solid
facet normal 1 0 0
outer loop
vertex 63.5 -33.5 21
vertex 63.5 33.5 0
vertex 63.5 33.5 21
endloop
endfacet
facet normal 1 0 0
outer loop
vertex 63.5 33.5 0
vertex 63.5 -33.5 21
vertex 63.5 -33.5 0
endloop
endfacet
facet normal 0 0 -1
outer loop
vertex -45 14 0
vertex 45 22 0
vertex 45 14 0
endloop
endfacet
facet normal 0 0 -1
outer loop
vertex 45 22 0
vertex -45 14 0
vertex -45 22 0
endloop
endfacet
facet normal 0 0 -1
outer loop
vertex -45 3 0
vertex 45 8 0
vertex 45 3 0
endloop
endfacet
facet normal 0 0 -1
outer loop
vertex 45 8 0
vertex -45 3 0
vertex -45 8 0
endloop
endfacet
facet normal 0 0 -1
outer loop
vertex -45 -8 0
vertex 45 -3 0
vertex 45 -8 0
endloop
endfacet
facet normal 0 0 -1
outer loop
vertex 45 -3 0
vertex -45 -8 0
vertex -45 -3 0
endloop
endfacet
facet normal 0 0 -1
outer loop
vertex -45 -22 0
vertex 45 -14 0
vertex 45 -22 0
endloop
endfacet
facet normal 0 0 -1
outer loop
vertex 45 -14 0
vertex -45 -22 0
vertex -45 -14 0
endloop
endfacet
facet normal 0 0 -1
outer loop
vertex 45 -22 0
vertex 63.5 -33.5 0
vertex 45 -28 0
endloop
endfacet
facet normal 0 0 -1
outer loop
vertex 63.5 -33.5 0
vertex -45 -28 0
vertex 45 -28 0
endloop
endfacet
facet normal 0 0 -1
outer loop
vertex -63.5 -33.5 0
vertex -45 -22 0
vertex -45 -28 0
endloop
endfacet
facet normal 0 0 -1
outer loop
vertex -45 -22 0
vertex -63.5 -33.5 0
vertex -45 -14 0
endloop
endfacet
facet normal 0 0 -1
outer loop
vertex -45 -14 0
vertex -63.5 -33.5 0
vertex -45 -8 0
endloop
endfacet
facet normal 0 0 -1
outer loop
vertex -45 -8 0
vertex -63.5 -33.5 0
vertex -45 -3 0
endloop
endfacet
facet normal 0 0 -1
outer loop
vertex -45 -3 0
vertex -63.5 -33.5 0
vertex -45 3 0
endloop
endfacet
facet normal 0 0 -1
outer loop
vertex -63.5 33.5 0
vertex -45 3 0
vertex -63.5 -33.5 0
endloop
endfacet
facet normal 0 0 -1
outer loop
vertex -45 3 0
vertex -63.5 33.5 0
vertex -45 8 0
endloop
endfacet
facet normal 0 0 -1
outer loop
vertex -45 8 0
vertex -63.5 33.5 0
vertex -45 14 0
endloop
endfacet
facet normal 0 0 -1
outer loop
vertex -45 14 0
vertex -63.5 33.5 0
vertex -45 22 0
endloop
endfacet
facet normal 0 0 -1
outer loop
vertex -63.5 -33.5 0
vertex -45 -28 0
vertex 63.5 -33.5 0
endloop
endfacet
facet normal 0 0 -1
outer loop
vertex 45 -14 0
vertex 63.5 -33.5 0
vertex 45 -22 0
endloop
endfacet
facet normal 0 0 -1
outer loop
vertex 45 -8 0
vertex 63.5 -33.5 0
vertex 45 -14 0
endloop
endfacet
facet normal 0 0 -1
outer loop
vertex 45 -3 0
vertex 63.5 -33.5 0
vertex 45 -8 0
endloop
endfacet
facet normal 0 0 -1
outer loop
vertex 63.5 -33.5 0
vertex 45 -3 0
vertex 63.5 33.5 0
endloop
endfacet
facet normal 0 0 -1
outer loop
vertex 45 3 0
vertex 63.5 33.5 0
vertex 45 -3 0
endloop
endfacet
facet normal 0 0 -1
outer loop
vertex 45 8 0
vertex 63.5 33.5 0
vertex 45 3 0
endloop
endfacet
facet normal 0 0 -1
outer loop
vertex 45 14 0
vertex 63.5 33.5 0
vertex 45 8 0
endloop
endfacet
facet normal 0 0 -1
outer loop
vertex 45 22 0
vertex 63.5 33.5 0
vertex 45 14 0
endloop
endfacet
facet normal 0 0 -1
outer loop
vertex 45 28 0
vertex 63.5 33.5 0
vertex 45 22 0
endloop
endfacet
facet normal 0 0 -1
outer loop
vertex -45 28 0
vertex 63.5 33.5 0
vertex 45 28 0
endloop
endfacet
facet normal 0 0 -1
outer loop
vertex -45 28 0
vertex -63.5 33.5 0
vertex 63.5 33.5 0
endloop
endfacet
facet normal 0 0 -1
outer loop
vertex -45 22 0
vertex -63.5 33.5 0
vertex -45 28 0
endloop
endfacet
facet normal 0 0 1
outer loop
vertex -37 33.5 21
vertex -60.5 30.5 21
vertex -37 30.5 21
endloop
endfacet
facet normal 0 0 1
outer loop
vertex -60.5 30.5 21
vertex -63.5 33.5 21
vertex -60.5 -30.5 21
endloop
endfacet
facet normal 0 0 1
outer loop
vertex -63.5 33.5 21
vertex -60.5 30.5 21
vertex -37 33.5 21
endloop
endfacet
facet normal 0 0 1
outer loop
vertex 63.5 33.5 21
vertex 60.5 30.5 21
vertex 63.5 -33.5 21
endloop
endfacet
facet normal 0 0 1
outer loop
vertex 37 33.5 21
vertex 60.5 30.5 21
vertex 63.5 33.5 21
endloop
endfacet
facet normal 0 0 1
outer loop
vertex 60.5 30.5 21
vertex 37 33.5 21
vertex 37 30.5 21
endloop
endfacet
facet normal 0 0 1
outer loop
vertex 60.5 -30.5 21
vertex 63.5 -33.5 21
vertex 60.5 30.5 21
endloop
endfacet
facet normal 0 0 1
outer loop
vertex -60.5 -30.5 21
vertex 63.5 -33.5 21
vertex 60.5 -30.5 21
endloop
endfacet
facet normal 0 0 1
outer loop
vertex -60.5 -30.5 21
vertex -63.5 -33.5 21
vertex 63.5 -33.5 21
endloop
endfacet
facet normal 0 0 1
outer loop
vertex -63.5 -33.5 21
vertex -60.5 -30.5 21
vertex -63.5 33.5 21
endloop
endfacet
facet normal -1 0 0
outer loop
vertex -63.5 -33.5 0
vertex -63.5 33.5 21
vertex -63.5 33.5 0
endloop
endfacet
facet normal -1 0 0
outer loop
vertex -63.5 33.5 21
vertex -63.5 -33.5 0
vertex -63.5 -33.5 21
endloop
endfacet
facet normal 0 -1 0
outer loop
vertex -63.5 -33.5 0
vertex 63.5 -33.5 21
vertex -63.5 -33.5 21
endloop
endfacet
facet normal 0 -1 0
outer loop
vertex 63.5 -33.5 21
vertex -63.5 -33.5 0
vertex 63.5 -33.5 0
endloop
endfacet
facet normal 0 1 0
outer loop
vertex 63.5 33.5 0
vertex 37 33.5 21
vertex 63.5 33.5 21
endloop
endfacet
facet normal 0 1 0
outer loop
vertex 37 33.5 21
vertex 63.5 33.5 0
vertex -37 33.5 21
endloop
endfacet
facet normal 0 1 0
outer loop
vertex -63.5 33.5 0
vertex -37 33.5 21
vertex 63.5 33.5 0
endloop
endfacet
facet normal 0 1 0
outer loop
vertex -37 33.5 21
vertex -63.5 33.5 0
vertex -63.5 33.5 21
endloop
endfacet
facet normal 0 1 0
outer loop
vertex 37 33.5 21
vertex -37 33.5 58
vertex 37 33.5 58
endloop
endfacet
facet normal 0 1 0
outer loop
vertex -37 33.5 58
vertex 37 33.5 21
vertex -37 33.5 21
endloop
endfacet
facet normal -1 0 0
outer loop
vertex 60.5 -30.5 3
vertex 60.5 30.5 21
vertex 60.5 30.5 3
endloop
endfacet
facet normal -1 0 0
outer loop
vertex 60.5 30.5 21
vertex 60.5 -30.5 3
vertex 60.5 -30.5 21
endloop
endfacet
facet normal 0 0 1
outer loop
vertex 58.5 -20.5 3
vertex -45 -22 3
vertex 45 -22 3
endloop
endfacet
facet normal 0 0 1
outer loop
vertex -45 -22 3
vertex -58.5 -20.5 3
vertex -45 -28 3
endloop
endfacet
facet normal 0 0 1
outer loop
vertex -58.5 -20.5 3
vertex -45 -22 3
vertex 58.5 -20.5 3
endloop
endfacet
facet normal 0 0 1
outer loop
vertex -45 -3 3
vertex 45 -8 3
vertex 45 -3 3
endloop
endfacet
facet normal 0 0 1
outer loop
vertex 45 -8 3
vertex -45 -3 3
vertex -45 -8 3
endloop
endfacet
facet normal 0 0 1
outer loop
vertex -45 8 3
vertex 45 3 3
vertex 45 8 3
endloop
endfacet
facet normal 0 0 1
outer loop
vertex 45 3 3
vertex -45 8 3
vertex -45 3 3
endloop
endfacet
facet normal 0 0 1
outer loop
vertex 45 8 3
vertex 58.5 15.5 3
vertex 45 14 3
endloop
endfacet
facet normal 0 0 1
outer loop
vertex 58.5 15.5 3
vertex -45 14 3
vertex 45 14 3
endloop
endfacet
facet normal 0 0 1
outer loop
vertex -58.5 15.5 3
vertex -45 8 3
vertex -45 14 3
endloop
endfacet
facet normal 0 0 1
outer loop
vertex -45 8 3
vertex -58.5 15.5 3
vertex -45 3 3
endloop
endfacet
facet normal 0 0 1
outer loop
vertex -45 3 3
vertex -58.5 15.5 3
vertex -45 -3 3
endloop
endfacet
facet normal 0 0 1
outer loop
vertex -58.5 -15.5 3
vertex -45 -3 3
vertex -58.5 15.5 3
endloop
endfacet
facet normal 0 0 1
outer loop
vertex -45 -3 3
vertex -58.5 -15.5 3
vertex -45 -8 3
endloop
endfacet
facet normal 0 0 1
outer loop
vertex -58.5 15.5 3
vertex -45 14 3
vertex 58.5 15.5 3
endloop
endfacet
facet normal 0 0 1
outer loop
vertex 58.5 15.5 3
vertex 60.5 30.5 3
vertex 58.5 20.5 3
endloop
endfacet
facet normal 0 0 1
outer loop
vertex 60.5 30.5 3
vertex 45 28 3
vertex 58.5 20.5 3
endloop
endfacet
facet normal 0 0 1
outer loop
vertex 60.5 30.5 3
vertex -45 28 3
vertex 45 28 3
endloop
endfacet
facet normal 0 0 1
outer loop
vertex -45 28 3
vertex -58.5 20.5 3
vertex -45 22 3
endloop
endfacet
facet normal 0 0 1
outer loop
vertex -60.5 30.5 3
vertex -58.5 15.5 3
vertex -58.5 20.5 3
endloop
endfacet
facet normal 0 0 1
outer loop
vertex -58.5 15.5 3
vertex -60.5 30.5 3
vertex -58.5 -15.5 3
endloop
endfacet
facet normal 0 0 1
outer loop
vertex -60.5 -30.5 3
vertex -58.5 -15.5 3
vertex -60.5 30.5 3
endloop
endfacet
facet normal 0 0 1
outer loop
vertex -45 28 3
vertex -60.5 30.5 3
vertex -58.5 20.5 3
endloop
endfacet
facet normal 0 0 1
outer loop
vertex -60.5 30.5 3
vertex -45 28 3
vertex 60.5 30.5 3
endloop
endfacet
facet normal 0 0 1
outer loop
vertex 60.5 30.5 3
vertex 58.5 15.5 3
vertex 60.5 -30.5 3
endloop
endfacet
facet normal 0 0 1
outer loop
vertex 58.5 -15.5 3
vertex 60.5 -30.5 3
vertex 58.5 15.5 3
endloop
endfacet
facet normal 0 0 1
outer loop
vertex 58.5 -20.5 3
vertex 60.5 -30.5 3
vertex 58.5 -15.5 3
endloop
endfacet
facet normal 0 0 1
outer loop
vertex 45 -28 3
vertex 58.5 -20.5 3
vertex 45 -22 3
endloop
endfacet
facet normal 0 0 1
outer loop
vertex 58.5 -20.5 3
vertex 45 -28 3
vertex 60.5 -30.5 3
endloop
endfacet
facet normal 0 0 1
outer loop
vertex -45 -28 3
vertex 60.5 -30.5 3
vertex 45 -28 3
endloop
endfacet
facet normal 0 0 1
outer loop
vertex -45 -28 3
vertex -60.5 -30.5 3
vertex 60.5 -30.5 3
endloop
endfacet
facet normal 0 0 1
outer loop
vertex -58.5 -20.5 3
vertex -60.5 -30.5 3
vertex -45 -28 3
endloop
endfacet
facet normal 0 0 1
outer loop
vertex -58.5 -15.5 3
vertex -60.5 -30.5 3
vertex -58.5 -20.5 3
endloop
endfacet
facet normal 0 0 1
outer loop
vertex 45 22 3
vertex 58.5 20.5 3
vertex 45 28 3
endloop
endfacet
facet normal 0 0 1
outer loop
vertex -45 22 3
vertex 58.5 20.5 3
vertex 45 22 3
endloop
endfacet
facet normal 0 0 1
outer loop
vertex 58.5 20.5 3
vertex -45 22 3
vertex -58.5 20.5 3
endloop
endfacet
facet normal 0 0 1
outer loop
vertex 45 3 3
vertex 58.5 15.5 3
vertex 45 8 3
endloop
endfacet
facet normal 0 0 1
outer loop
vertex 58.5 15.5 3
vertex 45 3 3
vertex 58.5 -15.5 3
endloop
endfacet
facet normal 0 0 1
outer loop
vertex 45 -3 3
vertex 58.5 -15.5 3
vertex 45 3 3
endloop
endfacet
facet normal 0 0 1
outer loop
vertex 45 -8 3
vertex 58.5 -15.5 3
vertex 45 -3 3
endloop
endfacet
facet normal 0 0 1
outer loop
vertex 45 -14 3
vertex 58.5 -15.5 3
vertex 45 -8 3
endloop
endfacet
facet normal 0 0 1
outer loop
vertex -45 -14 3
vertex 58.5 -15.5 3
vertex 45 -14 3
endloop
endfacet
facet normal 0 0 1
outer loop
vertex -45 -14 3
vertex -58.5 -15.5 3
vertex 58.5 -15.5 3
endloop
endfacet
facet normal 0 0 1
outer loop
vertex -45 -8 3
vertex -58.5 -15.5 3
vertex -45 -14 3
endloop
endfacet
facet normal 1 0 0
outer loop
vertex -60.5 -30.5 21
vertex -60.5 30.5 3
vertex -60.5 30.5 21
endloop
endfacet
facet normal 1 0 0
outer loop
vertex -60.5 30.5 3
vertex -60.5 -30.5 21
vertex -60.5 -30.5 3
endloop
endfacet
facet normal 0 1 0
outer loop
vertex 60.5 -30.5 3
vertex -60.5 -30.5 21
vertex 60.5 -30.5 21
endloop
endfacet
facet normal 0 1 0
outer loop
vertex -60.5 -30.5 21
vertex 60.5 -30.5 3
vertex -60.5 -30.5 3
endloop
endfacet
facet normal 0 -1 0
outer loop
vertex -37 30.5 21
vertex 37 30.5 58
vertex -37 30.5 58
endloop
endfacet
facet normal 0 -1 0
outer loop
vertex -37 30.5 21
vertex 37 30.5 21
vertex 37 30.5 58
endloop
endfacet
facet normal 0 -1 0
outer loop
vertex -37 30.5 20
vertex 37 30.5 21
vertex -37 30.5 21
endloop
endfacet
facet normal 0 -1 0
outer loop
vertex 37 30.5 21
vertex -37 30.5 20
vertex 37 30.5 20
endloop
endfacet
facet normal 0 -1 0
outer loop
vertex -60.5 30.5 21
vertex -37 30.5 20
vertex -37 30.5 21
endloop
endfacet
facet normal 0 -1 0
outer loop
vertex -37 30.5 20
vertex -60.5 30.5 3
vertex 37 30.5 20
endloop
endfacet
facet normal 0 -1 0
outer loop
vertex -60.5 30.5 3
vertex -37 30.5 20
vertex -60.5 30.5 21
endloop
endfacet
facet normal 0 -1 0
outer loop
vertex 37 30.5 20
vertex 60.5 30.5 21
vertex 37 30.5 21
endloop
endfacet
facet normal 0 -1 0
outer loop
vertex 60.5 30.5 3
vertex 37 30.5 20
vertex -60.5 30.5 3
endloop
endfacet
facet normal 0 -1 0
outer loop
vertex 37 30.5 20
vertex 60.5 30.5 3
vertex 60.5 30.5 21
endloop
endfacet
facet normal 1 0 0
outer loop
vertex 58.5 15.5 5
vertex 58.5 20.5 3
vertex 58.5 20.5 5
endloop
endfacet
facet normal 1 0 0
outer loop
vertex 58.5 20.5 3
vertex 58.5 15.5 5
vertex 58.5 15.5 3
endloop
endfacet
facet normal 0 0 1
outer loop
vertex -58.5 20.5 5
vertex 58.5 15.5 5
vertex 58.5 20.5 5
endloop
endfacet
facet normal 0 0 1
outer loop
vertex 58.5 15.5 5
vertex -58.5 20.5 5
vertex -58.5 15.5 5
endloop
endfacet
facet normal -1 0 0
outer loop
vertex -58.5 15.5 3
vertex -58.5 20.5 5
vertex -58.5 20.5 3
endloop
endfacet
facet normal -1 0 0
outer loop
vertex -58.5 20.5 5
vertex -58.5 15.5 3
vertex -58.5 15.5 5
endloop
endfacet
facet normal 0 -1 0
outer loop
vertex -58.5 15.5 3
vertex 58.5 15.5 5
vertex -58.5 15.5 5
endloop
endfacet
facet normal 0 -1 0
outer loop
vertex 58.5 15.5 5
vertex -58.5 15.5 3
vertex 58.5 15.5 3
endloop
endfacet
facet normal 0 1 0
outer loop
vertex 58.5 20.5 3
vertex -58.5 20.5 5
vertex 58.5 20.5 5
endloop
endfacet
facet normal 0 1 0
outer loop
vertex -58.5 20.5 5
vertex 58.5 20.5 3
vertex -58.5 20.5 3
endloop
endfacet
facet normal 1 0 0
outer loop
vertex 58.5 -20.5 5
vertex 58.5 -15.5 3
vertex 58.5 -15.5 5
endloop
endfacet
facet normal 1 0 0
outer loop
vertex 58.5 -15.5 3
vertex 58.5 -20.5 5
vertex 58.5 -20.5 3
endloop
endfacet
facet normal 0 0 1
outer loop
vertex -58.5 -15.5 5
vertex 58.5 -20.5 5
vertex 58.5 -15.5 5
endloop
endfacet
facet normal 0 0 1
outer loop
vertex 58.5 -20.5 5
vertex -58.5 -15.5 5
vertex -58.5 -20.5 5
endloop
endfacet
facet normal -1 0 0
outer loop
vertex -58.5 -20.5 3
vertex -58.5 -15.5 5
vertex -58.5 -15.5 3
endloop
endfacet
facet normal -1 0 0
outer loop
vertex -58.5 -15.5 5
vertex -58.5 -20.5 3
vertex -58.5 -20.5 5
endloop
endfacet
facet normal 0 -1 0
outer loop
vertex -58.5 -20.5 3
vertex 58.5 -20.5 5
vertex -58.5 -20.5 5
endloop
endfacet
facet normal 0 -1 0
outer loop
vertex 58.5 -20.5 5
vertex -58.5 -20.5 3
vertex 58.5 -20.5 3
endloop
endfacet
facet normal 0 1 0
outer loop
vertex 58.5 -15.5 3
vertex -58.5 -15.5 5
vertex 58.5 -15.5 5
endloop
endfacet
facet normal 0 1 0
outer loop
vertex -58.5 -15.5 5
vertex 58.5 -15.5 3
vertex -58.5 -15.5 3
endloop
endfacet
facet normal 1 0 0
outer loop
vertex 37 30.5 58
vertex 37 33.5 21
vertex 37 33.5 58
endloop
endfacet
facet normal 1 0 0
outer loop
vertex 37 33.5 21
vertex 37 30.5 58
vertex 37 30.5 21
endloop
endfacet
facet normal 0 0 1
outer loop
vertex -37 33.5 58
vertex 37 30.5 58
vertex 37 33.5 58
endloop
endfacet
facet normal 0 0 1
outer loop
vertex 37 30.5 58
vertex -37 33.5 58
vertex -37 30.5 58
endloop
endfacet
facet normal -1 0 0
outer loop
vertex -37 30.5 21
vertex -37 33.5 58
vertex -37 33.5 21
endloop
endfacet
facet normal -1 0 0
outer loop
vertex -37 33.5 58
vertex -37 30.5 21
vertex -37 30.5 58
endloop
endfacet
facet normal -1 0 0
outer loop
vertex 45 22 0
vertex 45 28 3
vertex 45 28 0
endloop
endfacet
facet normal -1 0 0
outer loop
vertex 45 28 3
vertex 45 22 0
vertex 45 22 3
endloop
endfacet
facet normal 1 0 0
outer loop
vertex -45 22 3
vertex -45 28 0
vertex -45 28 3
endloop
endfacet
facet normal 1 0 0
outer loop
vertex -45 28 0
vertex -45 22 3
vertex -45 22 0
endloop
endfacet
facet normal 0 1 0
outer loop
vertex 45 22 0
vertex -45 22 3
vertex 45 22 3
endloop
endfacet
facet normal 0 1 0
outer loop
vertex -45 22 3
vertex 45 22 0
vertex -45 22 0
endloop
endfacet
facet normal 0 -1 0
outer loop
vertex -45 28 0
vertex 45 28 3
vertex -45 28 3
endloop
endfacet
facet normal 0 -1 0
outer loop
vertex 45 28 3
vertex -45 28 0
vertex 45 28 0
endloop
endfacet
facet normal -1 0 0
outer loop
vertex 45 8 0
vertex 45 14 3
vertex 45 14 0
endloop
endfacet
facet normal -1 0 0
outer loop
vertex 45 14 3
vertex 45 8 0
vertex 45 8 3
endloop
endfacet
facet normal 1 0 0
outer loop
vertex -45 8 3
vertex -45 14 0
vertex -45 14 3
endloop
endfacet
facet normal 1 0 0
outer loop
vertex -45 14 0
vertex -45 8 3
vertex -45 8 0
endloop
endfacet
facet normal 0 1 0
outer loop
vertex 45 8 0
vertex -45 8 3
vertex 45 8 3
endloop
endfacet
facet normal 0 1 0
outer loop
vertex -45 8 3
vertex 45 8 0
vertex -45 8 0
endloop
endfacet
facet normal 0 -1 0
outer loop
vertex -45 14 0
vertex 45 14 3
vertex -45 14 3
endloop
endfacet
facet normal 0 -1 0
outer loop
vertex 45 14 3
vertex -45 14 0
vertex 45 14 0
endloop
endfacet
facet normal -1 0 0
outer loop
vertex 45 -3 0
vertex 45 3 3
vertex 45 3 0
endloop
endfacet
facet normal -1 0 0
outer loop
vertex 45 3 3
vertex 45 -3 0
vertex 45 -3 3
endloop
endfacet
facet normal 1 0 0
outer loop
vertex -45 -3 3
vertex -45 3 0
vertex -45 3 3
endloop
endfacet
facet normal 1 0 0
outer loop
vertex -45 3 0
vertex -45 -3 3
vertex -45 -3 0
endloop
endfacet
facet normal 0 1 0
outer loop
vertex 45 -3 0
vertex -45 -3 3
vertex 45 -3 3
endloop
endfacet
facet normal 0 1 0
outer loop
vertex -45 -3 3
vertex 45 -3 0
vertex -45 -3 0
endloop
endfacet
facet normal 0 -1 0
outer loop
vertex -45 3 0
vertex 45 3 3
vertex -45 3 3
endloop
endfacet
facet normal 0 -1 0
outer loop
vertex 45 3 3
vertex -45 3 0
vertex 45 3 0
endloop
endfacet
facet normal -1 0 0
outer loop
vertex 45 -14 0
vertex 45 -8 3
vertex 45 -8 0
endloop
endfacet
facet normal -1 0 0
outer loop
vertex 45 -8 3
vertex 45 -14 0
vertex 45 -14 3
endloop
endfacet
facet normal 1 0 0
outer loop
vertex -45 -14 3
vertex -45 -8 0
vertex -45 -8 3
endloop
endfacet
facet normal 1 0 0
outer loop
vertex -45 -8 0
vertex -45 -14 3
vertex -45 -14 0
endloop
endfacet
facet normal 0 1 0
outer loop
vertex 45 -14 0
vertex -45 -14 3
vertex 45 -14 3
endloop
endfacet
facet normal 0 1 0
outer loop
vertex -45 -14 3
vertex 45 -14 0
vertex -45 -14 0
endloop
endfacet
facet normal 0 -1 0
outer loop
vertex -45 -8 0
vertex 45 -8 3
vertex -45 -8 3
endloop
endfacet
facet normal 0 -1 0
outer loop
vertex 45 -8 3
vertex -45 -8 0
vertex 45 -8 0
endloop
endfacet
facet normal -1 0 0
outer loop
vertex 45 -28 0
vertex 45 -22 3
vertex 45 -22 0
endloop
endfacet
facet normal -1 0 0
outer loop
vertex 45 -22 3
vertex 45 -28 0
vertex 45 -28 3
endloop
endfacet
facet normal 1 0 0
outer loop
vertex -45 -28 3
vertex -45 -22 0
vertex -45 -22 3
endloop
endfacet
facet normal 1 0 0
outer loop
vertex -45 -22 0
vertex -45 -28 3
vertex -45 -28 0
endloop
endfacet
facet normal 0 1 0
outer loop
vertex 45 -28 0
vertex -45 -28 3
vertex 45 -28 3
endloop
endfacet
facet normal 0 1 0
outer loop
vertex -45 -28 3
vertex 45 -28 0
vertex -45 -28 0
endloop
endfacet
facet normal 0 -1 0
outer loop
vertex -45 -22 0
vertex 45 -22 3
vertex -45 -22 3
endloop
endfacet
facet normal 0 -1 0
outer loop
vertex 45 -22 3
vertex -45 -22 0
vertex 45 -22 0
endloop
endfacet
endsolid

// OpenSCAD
// =============================================================================
//  定刻起床装置 個人簡易型 SAC-5A型  制御タイマー(型式 SUK-49) 用
//  液晶めかくしフード（上からかぶせる蓋）
// -----------------------------------------------------------------------------
//  ・本体の上端に上からスポッとかぶせるキャップ
//  ・前に垂れる「バイザー」が液晶だけを覆う
//  ・アラームボタンも停止A/Bも操作ボタンも、全部バイザーの外に出る
//  ・外すときは真上に持ち上げるだけ
//
//  寸法根拠 : 取扱説明書「制御タイマー 各部名称」図を 800 dpi で描画して実測
//             （120 × 120 の盤面に対し、左端／底面からの mm）
//
//    液晶ディスプレイ  … 左 25.8〜94.4 / 底 69.3〜104.2
//    LED表示(電源/アラーム/停電/エラー) … 左 28.4〜63.7 / 底 56.4〜64.6
//    アラームボタン    … 左 73.1〜93.6 / 底 39.8〜49.2
//    停止ボタンA       … 左  2.6〜19.7 / 底 79〜94
//    停止ボタンB       … 左 99.5〜116.1 / 底 79〜94
//
//  → 液晶は盤面のほぼ中央(中心から ±34.4)、停止ボタンはその外側(±40.3 より外)。
//    バイザーを半幅 37 にすると、液晶を完全に覆ったまま停止A/Bが両方露出する。
//  → バイザー下端を底から 67 にすると、液晶(69.3)は覆い、
//    LED表示(64.6)とアラームボタン(49.2)は見える/押せる。
//
//  座標系 : z = 0 が制御タイマーの上面 / x,y は本体の中心
//           -Y = 表示・ボタン側 / +Y = 背面側
//  単位   : mm
// =============================================================================

$fn = 48;

// --------------------------------------------------- 制御タイマー(SUK-49)
DEV_W = 120;   // 幅   (X)
DEV_D = 60;    // 奥行 (Y)
DEV_H = 120;   // 高さ (Z)

// ------------------------------------------------------------------ はめあい
FIT   = 0.5;   // 片側クリアランス。きつくて入らない→0.7 / ゆるい→0.35

// -------------------------------------------------------------------- 肉厚等
WALL    = 3;   // 側面・背面・バイザーの厚さ
TOP_T   = 3;   // 天板厚
SKIRT_H = 16;  // 本体上端から下へ何mmかぶせるか（この範囲は全周を囲む）

// ------------------------------------------------------------------ バイザー
VISOR_HW     = 37;  // 半幅。液晶(±34.4)を覆い、停止A/B(±40.3〜)を避ける
VISOR_BOTTOM = 67;  // 下端（本体底面からの高さ）
                    //   67 … 液晶だけ覆う。LED表示とアラームボタンは見える(既定)
                    //   53 … LED表示も覆う。アラームボタンはまだ押せる

// -------------------------------------------------------------------- 通気
VENT    = true; // 天板のスリット（通気 + 指がかり）
RIB_H   = 2;    // 天板を本体上面から浮かせるリブの高さ

PLACE_ON_BED = true; // true: 天板を下にして Z=0 に配置（造形向き）

// =============================================================================
//  派生寸法（z = 0 が本体の上面）
// =============================================================================
iw = DEV_W / 2 + FIT;   // 内側 半幅
ow = iw + WALL;         // 外側 半幅
id = DEV_D / 2 + FIT;   // 内側 半奥行
od = id + WALL;         // 外側 半奥行

plate_z0 = RIB_H;            // 天板 下面
plate_z1 = RIB_H + TOP_T;    // 天板 上面
visor_z  = VISOR_BOTTOM - DEV_H;  // バイザー下端（本体上面基準なので負）

module bx(x0, x1, y0, y1, z0, z1)
    translate([min(x0, x1), min(y0, y1), min(z0, z1)])
        cube([abs(x1 - x0), abs(y1 - y0), abs(z1 - z0)]);

// =============================================================================
//  1. キャップ : 本体の上端 SKIRT_H mm を全周囲む箱（下面は開放）
// =============================================================================
module cap() {
    difference() {
        bx(-ow, ow, -od, od, -SKIRT_H, plate_z1);
        bx(-iw, iw, -id, id, -SKIRT_H - 1, plate_z0);
    }
}

// 天板を浮かせるリブ（本体上面に当たる）
module ribs() {
    for (sy = [-1, 1])
        bx(-iw + 2, iw - 2, sy * 18 - 2.5, sy * 18 + 2.5, 0, plate_z0 + 0.5);
}

// =============================================================================
//  2. バイザー : 前面から下へ垂れて液晶だけを覆う
// =============================================================================
module visor() {
    bx(-VISOR_HW, VISOR_HW, -od, -id, visor_z, -SKIRT_H + 1);
}

// =============================================================================
//  3. 天板のスリット（通気と指がかり）
// =============================================================================
module vents() {
    if (VENT)
        for (yc = [-25, -11, 0, 11, 25])   // リブ(±18)に掛からない位置
            bx(-45, 45, yc - 3, yc + 3, plate_z0 - 1, plate_z1 + 1);
}

// =============================================================================
//  組み立て
// =============================================================================
module hood() {
    difference() {
        union() {
            cap();
            ribs();
            visor();
        }
        vents();
    }
}

// 参考表示 : 制御タイマー本体（STL には含まれない）
module device_ghost() {
    %translate([-DEV_W / 2, -DEV_D / 2, -DEV_H])
        cube([DEV_W, DEV_D, DEV_H]);
}

if (PLACE_ON_BED)
    translate([0, 0, plate_z1]) rotate([180, 0, 0]) hood();
else
    hood();
